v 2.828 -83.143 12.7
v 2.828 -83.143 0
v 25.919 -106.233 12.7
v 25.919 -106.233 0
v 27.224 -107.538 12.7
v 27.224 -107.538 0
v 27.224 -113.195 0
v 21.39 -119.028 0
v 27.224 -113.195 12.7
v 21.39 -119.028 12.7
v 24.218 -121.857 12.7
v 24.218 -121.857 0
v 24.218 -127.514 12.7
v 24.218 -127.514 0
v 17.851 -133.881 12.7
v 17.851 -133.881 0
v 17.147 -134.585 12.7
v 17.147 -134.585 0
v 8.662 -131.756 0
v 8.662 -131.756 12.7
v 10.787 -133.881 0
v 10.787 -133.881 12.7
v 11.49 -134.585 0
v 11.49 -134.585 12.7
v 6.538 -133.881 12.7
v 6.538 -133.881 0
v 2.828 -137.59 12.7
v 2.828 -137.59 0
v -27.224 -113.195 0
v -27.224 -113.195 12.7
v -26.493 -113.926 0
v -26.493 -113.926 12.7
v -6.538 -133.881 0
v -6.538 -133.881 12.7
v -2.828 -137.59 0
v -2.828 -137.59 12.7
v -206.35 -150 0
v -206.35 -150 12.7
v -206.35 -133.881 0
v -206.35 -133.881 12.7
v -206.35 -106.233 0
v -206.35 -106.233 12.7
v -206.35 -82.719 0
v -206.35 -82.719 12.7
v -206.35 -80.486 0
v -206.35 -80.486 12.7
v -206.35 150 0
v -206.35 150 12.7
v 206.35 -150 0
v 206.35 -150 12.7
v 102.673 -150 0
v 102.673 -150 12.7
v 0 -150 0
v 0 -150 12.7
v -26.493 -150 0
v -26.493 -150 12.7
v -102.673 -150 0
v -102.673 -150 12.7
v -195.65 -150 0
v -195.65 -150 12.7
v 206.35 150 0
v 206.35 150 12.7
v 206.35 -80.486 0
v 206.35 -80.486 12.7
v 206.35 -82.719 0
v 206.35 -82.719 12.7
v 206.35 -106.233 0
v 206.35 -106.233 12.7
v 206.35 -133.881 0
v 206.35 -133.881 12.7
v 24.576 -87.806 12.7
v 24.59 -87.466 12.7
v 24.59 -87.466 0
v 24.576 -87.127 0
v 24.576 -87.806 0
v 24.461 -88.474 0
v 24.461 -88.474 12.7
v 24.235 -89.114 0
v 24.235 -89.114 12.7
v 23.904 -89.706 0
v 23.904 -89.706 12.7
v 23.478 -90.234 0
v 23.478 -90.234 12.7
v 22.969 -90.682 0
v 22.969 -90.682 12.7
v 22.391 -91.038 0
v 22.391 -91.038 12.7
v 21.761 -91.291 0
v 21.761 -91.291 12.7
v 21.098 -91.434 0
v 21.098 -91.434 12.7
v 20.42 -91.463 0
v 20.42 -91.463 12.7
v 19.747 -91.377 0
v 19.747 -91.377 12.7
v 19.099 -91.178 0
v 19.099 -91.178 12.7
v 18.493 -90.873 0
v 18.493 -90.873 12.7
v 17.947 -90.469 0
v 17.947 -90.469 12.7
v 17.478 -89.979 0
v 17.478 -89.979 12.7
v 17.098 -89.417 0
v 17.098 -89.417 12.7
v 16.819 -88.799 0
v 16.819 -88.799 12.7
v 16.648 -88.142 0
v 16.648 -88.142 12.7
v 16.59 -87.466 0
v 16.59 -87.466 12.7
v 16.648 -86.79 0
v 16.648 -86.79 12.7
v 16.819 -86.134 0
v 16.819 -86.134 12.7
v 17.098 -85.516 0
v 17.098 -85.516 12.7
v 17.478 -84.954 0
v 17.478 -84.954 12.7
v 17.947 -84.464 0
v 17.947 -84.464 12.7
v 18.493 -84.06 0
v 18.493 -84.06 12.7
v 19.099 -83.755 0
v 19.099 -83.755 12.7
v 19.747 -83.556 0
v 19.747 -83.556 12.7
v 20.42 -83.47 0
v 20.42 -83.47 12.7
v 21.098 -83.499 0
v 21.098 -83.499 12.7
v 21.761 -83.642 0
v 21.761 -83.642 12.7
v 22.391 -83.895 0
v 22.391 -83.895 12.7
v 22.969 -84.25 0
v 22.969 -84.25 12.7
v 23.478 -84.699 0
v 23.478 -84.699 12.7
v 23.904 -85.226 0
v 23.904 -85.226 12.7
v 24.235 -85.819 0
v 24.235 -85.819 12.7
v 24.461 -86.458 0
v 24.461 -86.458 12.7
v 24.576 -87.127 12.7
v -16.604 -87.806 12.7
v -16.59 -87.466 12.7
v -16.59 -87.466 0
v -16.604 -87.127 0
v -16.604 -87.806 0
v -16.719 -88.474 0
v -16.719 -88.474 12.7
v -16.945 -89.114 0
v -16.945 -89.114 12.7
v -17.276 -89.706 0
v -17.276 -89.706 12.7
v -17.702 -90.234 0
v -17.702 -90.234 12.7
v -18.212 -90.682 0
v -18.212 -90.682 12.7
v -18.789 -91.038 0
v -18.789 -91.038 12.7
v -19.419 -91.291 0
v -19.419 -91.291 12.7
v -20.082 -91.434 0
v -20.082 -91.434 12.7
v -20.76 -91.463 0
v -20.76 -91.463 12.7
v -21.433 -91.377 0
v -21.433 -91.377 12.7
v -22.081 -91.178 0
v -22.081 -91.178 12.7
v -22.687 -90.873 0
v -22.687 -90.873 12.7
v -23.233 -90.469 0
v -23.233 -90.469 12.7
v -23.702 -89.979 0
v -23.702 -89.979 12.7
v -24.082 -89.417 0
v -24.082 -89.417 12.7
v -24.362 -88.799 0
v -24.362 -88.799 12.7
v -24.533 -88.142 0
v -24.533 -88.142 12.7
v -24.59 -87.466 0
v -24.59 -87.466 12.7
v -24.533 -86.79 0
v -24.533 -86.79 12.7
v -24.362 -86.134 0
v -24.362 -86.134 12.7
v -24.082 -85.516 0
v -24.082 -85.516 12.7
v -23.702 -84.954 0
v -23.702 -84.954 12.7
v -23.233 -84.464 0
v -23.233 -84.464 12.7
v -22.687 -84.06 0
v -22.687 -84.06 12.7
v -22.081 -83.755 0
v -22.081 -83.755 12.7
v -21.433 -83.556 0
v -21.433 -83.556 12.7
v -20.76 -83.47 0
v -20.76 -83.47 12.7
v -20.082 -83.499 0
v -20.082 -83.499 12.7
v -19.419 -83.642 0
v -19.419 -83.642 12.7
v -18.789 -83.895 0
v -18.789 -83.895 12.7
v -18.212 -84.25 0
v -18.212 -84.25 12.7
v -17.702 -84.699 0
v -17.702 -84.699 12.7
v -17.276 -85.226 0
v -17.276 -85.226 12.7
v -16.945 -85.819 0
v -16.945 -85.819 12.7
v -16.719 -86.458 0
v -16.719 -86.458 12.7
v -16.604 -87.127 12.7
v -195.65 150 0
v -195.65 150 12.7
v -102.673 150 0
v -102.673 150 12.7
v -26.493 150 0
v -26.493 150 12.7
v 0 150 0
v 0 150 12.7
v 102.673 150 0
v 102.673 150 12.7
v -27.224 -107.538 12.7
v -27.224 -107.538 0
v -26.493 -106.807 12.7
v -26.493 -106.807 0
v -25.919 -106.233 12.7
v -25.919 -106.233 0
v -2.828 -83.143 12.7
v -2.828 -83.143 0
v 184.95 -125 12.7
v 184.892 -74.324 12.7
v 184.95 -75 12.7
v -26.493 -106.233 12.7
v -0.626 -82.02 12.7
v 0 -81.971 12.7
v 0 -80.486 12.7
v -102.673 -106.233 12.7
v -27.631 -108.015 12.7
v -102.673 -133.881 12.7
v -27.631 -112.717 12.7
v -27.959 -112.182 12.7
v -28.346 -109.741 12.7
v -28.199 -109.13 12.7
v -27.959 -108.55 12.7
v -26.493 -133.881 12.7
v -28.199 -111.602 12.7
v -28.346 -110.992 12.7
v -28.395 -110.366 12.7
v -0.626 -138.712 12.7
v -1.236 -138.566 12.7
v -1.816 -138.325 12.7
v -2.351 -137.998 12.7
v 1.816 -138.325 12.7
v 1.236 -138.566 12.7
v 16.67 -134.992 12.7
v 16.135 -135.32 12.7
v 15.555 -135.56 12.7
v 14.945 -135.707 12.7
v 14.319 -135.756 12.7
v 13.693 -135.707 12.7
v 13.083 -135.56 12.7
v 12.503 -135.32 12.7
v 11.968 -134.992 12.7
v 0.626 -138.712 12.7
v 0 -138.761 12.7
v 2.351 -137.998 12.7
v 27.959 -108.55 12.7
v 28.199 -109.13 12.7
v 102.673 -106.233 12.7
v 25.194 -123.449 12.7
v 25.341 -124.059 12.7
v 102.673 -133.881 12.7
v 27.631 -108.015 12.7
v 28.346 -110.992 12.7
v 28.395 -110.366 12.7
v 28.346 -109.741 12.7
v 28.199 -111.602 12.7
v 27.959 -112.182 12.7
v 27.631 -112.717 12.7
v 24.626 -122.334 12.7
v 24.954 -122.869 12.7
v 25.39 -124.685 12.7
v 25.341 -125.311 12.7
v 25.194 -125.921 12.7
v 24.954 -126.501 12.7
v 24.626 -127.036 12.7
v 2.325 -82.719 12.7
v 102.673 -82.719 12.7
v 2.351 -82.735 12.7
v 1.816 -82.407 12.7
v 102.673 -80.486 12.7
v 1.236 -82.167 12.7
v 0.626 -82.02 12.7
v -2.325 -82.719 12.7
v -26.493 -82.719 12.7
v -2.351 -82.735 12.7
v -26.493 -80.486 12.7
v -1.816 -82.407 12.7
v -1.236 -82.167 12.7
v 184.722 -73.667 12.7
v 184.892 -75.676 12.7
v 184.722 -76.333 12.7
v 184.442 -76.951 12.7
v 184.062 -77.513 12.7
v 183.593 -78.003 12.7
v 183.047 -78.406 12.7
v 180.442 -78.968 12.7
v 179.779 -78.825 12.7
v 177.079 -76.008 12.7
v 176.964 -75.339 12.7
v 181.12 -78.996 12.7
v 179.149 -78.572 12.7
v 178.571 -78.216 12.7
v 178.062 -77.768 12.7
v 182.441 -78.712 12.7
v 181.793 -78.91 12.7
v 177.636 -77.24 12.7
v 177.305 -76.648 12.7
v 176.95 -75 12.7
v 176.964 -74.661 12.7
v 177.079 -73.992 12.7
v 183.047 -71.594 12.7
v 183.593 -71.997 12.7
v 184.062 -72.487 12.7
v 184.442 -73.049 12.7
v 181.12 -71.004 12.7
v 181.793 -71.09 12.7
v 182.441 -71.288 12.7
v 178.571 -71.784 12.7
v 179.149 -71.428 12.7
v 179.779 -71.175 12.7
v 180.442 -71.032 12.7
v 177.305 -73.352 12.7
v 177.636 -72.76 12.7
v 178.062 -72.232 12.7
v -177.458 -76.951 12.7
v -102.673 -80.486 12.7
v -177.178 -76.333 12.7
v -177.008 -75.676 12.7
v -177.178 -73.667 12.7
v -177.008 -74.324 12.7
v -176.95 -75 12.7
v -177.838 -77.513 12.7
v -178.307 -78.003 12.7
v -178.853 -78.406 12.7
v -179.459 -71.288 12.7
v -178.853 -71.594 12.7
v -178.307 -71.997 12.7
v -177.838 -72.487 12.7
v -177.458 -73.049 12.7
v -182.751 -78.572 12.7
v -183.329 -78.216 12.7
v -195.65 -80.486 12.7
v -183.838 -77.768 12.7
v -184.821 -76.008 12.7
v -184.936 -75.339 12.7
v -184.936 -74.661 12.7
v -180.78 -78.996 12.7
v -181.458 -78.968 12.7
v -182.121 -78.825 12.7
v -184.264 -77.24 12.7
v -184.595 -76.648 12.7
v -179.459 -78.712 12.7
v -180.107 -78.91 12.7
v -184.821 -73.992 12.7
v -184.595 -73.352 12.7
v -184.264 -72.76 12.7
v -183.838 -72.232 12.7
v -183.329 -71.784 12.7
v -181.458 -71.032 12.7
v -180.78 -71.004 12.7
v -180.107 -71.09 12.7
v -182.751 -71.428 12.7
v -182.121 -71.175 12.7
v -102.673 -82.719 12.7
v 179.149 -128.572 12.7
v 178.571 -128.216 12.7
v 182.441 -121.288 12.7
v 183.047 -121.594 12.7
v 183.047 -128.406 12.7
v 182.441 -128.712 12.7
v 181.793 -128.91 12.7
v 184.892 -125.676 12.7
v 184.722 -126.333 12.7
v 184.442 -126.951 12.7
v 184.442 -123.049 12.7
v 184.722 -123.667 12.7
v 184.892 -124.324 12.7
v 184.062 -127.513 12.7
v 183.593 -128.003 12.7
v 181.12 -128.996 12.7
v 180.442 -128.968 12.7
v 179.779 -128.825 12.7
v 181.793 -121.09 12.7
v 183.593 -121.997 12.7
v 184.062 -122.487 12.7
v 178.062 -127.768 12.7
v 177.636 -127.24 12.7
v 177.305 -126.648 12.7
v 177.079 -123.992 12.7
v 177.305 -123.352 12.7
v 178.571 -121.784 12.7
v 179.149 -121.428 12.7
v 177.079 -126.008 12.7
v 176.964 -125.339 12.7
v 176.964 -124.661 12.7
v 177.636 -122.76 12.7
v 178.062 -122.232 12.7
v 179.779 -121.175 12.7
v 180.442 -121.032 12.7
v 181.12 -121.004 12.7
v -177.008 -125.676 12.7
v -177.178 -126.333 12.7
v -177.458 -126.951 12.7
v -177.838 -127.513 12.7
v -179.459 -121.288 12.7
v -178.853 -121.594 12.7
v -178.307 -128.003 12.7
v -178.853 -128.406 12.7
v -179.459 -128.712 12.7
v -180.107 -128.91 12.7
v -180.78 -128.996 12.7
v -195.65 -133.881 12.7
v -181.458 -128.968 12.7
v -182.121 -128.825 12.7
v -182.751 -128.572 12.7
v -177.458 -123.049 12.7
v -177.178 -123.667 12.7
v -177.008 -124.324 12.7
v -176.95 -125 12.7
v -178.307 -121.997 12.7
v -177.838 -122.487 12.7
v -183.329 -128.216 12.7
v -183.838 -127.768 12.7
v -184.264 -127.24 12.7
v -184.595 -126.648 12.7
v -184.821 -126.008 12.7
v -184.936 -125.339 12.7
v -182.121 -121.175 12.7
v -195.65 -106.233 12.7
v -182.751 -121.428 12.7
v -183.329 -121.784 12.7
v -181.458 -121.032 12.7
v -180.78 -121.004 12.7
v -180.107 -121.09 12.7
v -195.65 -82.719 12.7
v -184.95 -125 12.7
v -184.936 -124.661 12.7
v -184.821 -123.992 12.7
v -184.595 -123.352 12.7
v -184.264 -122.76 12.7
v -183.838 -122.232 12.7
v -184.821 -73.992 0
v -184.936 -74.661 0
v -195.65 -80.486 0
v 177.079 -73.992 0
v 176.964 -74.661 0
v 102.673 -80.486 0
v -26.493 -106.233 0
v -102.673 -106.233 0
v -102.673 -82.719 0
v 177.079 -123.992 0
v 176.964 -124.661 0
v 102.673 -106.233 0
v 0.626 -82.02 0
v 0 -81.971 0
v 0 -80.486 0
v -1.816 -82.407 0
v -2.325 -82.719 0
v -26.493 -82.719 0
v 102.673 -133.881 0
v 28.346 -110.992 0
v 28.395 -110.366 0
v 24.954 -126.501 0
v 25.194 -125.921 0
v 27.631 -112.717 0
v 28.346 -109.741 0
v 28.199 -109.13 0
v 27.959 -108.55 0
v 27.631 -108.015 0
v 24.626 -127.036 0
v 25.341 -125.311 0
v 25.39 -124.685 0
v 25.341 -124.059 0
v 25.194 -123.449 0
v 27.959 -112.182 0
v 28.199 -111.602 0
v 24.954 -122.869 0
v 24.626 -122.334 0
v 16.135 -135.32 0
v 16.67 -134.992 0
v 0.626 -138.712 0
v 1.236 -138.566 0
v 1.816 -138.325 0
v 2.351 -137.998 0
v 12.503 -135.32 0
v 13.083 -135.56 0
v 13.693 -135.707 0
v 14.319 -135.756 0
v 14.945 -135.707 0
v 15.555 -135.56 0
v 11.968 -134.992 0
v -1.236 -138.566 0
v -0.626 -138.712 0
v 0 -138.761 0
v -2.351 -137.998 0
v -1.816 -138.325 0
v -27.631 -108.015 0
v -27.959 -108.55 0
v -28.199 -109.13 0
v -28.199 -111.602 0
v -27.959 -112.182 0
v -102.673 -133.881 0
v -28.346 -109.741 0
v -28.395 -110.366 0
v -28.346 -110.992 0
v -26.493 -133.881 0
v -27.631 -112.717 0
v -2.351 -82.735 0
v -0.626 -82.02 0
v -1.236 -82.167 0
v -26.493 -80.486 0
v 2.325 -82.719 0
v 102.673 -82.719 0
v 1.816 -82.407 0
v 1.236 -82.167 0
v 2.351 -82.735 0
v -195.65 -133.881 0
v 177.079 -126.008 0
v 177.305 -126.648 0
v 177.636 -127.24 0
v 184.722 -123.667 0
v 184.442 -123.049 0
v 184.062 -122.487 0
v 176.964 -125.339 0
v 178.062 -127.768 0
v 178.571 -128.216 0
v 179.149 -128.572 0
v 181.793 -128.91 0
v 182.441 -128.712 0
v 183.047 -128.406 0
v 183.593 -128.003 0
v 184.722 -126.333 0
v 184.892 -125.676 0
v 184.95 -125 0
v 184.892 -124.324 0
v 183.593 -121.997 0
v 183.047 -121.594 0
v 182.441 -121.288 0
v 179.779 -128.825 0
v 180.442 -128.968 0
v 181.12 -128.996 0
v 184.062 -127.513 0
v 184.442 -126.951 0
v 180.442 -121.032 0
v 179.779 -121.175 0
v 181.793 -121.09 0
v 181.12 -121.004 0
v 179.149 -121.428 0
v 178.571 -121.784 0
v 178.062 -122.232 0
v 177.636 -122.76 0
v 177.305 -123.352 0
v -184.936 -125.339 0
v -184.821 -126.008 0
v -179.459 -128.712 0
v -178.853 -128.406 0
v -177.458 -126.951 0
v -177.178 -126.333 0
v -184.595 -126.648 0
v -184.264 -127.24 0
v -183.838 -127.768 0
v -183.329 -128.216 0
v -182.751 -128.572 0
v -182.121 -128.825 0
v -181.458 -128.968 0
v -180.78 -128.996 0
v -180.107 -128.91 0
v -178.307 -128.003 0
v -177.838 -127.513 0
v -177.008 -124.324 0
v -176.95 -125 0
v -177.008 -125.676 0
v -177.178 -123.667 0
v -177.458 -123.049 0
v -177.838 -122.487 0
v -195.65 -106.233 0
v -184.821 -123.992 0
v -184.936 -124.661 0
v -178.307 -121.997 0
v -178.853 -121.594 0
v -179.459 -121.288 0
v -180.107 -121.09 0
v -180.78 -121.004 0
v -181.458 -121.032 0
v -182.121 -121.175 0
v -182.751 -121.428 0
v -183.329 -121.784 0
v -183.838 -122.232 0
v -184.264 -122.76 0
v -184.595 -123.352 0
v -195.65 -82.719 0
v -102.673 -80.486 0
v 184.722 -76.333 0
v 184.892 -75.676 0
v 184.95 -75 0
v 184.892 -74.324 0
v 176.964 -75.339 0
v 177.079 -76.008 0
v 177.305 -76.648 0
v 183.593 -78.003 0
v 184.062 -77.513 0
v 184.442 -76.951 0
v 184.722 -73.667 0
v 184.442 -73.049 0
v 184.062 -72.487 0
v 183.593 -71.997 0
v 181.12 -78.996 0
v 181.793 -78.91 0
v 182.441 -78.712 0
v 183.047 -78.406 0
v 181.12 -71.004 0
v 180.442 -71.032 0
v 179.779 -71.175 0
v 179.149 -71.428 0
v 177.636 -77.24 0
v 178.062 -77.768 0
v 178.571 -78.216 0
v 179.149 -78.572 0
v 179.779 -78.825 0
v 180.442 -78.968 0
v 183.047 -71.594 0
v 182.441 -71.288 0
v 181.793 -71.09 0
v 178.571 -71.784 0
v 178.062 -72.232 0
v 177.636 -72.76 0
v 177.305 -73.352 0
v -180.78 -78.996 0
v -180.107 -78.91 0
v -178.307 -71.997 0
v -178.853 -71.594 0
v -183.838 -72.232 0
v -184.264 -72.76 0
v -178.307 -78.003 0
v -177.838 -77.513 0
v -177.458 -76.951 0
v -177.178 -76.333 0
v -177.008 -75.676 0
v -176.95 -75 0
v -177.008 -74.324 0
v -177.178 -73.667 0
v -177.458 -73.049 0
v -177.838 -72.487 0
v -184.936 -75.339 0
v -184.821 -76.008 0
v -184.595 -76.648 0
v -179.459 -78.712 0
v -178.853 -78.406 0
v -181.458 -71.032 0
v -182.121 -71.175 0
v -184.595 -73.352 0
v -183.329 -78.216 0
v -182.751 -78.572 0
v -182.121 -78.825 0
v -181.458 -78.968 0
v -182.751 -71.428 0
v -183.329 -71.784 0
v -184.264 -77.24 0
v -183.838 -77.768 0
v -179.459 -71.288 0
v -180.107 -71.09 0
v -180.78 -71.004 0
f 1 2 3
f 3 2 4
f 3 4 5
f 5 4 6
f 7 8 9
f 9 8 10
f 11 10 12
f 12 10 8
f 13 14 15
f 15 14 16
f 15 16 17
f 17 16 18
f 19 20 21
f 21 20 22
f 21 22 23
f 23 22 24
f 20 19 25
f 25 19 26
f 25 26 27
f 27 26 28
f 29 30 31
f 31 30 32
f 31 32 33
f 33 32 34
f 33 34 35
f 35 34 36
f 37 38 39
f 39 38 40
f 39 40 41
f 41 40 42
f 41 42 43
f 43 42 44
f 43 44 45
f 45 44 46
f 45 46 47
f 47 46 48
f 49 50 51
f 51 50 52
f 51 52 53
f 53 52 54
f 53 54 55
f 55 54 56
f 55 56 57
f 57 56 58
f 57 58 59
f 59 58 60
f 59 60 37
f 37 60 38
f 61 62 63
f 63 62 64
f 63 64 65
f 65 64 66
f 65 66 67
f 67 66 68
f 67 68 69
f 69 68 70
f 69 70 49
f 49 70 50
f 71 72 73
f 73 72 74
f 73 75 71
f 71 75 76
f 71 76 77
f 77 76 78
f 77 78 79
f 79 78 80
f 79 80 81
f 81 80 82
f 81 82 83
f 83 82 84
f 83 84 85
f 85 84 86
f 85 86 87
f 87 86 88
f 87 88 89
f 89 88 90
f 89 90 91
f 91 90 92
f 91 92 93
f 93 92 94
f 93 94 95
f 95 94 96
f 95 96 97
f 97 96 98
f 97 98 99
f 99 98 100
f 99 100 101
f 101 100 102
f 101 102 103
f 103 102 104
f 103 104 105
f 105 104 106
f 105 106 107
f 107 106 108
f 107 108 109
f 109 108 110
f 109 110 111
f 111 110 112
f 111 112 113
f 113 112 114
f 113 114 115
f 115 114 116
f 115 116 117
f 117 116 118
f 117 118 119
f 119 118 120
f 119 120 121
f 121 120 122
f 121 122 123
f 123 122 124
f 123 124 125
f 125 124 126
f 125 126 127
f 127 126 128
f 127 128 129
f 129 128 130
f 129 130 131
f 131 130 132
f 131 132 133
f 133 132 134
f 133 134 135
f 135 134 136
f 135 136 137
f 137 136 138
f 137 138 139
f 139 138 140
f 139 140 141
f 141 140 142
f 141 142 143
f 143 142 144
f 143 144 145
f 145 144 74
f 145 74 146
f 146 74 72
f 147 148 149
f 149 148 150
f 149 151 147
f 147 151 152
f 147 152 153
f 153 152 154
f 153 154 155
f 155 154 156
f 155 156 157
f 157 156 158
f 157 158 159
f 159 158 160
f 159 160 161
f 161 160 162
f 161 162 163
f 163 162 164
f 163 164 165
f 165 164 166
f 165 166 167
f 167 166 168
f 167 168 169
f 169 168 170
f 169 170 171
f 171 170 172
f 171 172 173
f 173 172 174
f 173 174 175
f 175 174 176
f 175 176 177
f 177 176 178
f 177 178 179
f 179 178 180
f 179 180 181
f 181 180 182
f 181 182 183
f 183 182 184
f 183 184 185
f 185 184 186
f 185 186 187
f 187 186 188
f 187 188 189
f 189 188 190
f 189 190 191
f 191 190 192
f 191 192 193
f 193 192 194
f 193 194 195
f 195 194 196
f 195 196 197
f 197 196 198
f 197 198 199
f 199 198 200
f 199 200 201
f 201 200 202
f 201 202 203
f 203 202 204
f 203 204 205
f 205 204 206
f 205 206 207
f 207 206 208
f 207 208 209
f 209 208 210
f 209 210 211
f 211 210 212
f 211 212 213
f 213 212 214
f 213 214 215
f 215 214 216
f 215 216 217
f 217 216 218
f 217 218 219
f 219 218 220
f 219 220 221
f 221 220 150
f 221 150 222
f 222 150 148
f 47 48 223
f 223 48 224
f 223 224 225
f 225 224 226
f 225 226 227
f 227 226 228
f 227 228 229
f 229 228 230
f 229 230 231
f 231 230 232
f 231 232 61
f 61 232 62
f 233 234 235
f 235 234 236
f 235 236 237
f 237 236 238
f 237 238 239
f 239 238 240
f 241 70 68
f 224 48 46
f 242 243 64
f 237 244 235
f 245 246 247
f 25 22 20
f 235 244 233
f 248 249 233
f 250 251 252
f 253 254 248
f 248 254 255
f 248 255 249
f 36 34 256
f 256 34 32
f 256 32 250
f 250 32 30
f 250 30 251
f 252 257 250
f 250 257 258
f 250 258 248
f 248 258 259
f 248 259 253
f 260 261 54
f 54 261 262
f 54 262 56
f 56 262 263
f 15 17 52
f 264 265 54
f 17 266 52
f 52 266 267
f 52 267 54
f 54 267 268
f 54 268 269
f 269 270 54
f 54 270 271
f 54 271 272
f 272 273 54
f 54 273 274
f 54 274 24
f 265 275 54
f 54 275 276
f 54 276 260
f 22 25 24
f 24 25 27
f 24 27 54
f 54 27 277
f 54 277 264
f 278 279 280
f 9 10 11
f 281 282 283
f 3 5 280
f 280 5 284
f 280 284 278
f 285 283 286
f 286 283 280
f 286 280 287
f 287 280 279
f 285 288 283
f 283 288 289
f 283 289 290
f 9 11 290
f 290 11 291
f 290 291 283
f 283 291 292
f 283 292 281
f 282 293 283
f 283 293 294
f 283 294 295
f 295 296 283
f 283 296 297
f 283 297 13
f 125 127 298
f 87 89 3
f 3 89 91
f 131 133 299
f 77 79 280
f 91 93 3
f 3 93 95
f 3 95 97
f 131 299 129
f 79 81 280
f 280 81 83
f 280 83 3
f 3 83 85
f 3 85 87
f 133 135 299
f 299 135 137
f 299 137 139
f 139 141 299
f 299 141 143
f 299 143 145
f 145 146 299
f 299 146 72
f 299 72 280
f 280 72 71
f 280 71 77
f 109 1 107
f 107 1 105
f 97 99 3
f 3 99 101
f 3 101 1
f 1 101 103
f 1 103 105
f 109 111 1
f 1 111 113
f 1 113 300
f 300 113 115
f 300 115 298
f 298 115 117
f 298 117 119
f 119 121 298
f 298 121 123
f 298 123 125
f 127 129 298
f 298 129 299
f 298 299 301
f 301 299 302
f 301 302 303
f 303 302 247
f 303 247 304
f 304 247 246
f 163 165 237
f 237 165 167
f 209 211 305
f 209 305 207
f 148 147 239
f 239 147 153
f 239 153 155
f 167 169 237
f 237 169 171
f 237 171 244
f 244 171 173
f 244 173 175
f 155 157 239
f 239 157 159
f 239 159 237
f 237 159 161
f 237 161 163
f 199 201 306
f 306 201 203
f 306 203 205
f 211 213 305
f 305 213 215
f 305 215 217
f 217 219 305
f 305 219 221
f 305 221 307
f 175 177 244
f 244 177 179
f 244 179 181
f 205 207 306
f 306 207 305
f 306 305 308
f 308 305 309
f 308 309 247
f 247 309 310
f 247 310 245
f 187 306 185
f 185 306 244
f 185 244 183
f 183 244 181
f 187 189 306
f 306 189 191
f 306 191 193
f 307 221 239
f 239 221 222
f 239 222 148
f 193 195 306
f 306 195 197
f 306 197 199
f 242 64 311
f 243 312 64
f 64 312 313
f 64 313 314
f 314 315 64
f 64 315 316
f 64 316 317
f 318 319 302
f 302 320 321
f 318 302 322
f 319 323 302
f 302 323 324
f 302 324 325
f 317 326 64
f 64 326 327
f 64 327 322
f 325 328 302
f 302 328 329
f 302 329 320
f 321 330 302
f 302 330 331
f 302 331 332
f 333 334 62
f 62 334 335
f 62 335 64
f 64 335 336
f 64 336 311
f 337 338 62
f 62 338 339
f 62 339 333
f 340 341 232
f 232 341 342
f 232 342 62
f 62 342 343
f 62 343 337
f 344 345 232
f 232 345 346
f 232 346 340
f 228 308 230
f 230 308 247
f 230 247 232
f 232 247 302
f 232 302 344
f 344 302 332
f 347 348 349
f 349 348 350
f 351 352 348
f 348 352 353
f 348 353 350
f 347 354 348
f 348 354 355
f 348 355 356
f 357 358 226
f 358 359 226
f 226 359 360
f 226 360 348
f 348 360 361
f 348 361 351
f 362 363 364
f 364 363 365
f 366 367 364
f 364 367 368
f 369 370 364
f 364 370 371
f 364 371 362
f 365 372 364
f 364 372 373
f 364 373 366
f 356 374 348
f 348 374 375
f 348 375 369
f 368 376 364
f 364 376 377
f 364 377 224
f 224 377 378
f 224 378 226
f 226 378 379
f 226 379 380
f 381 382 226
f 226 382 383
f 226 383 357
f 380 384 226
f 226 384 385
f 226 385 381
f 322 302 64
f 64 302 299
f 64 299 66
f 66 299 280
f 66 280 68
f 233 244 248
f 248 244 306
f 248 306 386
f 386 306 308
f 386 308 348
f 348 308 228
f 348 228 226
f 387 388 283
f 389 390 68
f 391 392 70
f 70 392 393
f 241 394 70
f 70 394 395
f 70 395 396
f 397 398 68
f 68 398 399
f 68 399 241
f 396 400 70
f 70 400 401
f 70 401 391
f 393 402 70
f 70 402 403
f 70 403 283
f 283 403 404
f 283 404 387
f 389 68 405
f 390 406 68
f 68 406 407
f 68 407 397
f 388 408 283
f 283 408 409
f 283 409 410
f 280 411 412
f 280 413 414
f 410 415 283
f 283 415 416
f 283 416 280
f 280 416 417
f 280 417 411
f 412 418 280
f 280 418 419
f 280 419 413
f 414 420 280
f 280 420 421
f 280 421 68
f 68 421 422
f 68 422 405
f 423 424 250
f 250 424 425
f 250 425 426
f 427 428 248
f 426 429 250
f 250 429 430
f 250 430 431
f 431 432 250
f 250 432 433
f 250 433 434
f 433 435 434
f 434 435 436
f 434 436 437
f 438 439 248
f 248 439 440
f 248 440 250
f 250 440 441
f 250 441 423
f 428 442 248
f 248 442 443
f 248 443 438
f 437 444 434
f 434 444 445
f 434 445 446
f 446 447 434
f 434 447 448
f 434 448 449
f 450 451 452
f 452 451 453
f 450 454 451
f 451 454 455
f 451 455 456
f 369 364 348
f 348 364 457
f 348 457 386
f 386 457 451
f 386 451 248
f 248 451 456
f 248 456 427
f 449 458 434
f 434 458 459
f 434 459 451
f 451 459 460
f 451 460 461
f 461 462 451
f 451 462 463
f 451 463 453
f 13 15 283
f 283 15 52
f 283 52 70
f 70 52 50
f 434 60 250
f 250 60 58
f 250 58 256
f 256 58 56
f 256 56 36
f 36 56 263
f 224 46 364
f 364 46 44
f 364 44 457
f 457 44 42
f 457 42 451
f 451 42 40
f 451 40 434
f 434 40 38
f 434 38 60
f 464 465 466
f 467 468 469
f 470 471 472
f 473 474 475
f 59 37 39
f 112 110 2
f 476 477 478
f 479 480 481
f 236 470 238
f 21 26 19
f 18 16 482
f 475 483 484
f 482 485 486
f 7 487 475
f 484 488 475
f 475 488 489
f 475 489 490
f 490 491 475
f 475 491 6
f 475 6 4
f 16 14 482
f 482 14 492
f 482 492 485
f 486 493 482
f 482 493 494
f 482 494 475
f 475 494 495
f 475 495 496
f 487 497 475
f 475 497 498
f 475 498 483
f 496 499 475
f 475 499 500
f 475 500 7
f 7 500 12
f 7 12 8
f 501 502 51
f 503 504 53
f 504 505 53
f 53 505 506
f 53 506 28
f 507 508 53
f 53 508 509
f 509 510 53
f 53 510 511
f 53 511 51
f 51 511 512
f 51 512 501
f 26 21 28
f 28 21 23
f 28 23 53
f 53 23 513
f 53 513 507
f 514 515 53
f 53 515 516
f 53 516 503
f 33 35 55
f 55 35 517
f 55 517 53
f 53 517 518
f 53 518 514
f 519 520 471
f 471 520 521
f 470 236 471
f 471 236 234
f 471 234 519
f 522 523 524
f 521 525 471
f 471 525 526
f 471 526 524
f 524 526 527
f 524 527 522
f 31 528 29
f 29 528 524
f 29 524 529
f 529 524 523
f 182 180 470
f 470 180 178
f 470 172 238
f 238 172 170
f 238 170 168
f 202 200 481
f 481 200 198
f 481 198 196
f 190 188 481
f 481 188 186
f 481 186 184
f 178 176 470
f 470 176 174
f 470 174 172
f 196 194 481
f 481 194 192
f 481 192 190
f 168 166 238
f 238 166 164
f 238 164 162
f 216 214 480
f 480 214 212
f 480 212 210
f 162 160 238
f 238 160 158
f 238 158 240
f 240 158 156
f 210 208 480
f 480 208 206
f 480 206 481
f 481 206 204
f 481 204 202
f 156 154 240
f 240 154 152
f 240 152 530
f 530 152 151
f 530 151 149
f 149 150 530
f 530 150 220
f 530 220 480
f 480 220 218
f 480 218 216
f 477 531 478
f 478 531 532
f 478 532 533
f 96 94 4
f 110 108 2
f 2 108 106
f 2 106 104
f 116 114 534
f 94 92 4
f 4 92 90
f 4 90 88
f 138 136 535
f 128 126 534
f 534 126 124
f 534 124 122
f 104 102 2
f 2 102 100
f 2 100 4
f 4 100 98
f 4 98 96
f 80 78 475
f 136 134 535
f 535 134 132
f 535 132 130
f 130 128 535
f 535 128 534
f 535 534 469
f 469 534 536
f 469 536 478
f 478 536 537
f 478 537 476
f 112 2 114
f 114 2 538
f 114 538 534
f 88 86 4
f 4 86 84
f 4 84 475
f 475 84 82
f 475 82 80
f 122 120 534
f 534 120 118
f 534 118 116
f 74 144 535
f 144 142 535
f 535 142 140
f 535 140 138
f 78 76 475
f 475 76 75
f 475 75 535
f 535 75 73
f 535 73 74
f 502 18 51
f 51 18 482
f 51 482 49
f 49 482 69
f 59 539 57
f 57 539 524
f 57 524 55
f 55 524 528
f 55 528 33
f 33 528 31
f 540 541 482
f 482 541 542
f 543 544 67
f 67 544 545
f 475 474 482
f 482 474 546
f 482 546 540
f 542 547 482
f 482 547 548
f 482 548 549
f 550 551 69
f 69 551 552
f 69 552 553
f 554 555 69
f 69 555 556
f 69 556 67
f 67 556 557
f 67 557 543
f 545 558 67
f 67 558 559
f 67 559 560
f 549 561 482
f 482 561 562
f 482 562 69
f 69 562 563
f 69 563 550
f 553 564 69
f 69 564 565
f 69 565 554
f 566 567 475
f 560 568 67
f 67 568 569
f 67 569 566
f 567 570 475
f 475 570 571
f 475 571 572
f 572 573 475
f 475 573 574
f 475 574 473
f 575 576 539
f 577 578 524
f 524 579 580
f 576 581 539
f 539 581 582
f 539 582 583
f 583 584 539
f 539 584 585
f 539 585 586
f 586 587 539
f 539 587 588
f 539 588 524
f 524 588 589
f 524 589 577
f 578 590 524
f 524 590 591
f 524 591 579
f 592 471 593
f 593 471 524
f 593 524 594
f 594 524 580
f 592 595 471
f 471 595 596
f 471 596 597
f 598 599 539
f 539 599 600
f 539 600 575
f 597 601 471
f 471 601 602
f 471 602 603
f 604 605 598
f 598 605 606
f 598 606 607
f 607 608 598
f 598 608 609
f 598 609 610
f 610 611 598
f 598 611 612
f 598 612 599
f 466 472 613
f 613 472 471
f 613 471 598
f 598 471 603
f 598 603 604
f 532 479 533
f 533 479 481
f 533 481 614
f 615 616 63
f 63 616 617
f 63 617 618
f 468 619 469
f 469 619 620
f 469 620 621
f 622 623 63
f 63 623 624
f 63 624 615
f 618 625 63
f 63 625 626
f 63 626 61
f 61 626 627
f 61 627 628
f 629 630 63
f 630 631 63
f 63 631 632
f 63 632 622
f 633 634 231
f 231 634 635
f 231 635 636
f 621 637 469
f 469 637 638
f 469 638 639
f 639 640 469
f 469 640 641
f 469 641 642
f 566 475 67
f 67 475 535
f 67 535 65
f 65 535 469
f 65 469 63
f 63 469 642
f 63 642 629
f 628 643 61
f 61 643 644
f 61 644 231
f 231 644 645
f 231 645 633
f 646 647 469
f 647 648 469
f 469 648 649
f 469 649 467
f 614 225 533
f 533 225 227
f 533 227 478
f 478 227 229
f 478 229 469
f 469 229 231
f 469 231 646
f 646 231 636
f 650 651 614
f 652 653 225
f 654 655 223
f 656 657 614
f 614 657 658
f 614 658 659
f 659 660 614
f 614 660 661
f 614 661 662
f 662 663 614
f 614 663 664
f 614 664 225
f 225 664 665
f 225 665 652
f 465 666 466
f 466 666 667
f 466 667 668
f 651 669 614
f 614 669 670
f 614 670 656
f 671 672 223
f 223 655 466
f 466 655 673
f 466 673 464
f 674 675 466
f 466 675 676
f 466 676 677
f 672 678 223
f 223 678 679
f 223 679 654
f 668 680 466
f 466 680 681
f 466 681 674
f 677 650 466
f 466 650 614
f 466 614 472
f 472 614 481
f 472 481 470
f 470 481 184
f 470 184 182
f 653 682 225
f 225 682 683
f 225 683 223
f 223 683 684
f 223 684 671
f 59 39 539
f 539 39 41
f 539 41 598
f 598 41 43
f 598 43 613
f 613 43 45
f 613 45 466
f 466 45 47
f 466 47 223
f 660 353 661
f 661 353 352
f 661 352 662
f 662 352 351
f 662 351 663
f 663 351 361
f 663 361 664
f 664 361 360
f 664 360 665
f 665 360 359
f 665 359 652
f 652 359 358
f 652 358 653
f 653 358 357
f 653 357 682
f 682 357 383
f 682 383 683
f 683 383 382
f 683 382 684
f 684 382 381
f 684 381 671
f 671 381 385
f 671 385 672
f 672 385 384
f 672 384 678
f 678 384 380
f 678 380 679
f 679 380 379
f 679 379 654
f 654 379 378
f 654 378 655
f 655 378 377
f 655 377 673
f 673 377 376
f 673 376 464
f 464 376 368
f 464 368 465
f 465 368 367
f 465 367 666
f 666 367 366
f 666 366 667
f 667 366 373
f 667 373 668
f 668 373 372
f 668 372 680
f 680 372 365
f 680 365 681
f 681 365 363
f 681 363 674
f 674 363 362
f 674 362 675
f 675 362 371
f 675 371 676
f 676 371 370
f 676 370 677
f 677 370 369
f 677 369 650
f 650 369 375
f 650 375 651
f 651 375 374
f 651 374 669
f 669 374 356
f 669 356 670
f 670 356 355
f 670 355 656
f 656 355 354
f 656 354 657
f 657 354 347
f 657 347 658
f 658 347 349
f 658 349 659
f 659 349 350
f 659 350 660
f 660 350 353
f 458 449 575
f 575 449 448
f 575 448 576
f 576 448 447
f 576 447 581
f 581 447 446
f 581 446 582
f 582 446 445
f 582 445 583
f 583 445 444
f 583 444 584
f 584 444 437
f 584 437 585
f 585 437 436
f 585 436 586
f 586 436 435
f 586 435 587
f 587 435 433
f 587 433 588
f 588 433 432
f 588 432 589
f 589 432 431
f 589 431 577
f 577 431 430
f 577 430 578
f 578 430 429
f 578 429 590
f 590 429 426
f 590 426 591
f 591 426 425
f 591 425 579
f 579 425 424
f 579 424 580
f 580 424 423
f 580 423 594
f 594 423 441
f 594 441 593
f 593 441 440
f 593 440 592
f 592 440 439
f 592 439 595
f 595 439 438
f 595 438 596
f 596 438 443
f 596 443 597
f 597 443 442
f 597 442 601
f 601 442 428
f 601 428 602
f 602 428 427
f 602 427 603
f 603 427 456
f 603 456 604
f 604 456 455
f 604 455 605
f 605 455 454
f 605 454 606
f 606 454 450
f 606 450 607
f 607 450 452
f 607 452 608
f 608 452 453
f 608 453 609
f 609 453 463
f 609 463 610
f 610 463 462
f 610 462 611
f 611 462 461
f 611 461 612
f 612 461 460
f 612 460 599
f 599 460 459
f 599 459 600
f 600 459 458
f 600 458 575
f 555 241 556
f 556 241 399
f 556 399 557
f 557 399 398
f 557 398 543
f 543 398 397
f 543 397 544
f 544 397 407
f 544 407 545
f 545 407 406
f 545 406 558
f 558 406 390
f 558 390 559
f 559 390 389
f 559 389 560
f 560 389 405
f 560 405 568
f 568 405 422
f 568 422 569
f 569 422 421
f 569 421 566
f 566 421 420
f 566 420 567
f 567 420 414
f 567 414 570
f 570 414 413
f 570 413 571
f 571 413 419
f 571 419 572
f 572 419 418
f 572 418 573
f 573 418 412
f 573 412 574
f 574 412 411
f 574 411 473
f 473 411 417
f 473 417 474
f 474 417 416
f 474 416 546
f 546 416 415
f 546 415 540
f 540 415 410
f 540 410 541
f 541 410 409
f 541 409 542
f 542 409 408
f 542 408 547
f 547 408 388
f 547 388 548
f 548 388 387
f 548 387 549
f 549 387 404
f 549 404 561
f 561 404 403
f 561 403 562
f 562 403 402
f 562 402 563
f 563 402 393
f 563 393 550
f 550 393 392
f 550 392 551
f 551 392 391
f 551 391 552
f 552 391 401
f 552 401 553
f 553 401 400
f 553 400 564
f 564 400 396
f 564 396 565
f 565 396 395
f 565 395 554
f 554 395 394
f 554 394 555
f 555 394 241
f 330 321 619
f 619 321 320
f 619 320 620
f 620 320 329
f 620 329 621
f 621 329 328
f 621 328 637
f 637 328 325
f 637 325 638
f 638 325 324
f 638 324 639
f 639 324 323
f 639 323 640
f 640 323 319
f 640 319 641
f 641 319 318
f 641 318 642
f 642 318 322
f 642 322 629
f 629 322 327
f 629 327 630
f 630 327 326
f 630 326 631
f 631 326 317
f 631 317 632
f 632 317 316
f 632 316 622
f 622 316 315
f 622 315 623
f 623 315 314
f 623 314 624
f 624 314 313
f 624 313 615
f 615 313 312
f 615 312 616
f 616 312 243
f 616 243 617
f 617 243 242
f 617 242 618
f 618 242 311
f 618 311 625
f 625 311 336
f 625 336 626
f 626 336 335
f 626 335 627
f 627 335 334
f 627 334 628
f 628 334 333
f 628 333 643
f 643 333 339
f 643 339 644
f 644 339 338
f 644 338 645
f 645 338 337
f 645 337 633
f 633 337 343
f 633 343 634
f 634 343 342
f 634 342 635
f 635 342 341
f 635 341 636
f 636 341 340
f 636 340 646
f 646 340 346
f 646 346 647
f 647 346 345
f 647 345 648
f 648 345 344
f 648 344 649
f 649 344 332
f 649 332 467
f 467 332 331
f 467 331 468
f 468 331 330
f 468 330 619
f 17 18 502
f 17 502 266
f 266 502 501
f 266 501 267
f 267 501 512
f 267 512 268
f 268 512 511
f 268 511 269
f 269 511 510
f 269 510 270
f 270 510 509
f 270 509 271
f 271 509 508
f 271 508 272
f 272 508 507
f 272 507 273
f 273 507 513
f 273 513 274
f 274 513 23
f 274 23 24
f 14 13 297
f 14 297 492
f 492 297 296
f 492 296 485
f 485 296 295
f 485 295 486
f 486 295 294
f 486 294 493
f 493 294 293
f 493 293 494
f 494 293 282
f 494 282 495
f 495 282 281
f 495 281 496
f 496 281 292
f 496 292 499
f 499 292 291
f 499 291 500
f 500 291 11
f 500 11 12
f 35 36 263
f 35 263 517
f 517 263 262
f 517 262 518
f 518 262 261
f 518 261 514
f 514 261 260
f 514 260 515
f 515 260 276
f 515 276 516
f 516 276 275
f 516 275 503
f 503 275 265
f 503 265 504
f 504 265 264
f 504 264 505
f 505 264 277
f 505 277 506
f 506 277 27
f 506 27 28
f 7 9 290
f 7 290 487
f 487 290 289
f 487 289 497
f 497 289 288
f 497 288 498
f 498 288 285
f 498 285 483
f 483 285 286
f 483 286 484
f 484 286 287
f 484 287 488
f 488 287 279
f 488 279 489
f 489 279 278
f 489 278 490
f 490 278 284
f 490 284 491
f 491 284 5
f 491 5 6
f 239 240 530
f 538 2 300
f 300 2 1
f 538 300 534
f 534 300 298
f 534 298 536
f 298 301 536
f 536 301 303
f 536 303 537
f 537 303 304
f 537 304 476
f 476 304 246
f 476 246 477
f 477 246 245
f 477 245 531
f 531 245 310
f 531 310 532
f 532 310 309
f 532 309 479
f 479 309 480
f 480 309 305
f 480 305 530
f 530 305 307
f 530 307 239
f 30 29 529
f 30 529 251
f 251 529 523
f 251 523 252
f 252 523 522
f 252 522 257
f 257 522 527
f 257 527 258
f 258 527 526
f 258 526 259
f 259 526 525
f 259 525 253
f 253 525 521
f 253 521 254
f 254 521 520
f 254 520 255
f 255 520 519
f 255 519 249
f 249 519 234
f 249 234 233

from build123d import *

# Parameters (mm, degrees)
SKETCH1_R           = 4
BOSS_EXTRUDE2_DEPTH = 12.7
CUT_EXTRUDE1_REACH  = 257.424
SKETCH2_R           = 4
FILLET1_R           = 4


with BuildPart() as part:
    # Sketch1 → Boss-Extrude2 (new body)
    with BuildSketch(Plane.XY):
        Polygon((-187.3, -150), (187.3, -150), (206.35, -150), (206.35, 150), (187.3, 150), (-187.3, 150), (-206.35, 150), (-206.35, -150), align=None)
        Polygon((14.318912319, -137.41311332), (8.66205807, -131.75625907), (0, -140.41831714), (-30.0520382, -110.366278939), (0, -80.314240739), (30.0520382, -110.366278939), (21.389980131, -119.028337009), (27.04683438, -124.685191258), align=None, mode=Mode.SUBTRACT)
        with Locations((-20.590065585, -87.466385575)):
            Circle(SKETCH1_R, mode=Mode.SUBTRACT)
        with Locations((20.590065585, -87.466385575)):
            Circle(SKETCH1_R, mode=Mode.SUBTRACT)
    extrude(amount=BOSS_EXTRUDE2_DEPTH)

    # Sketch2 → Cut-Extrude1 (cut, up to next)
    with BuildSketch(Plane.XY.offset(12.7), mode=Mode.PRIVATE) as cut_extrude1_sk1:
        with Locations((-180.95, -75)):
            Circle(SKETCH2_R)
    cut_extrude1_tool1 = extrude(cut_extrude1_sk1.sketch, amount=-CUT_EXTRUDE1_REACH, mode=Mode.PRIVATE) & part.part
    # Sketch2 → Cut-Extrude1 (cut, up to next)
    with BuildSketch(Plane.XY.offset(12.7), mode=Mode.PRIVATE) as cut_extrude1_sk2:
        with Locations((-180.95, -125)):
            Circle(SKETCH2_R)
    cut_extrude1_tool2 = extrude(cut_extrude1_sk2.sketch, amount=-CUT_EXTRUDE1_REACH, mode=Mode.PRIVATE) & part.part
    # Sketch2 → Cut-Extrude1 (cut, up to next)
    with BuildSketch(Plane.XY.offset(12.7), mode=Mode.PRIVATE) as cut_extrude1_sk3:
        with Locations((180.95, -125)):
            Circle(SKETCH2_R)
    cut_extrude1_tool3 = extrude(cut_extrude1_sk3.sketch, amount=-CUT_EXTRUDE1_REACH, mode=Mode.PRIVATE) & part.part
    # Sketch2 → Cut-Extrude1 (cut, up to next)
    with BuildSketch(Plane.XY.offset(12.7), mode=Mode.PRIVATE) as cut_extrude1_sk4:
        with Locations((180.95, -75)):
            Circle(SKETCH2_R)
    cut_extrude1_tool4 = extrude(cut_extrude1_sk4.sketch, amount=-CUT_EXTRUDE1_REACH, mode=Mode.PRIVATE) & part.part
    add(cut_extrude1_tool1.solids().sort_by_distance((-180.95, -75, 12.7))[0], mode=Mode.SUBTRACT)
    add(cut_extrude1_tool2.solids().sort_by_distance((-180.95, -125, 12.7))[0], mode=Mode.SUBTRACT)
    add(cut_extrude1_tool3.solids().sort_by_distance((180.95, -125, 12.7))[0], mode=Mode.SUBTRACT)
    add(cut_extrude1_tool4.solids().sort_by_distance((180.95, -75, 12.7))[0], mode=Mode.SUBTRACT)

    # Fillet1
    fillet1_edges = [part.edges().sort_by_distance(p)[0] for p in [
        (0, -80.314240739, 6.35),
        (-30.0520382, -110.366278939, 6.35),
        (0, -140.41831714, 6.35),
        (14.318912319, -137.41311332, 6.35),
        (27.04683438, -124.685191258, 6.35),
        (30.0520382, -110.366278939, 6.35),
    ]]
    fillet(fillet1_edges, radius=FILLET1_R)


solid = part.part
